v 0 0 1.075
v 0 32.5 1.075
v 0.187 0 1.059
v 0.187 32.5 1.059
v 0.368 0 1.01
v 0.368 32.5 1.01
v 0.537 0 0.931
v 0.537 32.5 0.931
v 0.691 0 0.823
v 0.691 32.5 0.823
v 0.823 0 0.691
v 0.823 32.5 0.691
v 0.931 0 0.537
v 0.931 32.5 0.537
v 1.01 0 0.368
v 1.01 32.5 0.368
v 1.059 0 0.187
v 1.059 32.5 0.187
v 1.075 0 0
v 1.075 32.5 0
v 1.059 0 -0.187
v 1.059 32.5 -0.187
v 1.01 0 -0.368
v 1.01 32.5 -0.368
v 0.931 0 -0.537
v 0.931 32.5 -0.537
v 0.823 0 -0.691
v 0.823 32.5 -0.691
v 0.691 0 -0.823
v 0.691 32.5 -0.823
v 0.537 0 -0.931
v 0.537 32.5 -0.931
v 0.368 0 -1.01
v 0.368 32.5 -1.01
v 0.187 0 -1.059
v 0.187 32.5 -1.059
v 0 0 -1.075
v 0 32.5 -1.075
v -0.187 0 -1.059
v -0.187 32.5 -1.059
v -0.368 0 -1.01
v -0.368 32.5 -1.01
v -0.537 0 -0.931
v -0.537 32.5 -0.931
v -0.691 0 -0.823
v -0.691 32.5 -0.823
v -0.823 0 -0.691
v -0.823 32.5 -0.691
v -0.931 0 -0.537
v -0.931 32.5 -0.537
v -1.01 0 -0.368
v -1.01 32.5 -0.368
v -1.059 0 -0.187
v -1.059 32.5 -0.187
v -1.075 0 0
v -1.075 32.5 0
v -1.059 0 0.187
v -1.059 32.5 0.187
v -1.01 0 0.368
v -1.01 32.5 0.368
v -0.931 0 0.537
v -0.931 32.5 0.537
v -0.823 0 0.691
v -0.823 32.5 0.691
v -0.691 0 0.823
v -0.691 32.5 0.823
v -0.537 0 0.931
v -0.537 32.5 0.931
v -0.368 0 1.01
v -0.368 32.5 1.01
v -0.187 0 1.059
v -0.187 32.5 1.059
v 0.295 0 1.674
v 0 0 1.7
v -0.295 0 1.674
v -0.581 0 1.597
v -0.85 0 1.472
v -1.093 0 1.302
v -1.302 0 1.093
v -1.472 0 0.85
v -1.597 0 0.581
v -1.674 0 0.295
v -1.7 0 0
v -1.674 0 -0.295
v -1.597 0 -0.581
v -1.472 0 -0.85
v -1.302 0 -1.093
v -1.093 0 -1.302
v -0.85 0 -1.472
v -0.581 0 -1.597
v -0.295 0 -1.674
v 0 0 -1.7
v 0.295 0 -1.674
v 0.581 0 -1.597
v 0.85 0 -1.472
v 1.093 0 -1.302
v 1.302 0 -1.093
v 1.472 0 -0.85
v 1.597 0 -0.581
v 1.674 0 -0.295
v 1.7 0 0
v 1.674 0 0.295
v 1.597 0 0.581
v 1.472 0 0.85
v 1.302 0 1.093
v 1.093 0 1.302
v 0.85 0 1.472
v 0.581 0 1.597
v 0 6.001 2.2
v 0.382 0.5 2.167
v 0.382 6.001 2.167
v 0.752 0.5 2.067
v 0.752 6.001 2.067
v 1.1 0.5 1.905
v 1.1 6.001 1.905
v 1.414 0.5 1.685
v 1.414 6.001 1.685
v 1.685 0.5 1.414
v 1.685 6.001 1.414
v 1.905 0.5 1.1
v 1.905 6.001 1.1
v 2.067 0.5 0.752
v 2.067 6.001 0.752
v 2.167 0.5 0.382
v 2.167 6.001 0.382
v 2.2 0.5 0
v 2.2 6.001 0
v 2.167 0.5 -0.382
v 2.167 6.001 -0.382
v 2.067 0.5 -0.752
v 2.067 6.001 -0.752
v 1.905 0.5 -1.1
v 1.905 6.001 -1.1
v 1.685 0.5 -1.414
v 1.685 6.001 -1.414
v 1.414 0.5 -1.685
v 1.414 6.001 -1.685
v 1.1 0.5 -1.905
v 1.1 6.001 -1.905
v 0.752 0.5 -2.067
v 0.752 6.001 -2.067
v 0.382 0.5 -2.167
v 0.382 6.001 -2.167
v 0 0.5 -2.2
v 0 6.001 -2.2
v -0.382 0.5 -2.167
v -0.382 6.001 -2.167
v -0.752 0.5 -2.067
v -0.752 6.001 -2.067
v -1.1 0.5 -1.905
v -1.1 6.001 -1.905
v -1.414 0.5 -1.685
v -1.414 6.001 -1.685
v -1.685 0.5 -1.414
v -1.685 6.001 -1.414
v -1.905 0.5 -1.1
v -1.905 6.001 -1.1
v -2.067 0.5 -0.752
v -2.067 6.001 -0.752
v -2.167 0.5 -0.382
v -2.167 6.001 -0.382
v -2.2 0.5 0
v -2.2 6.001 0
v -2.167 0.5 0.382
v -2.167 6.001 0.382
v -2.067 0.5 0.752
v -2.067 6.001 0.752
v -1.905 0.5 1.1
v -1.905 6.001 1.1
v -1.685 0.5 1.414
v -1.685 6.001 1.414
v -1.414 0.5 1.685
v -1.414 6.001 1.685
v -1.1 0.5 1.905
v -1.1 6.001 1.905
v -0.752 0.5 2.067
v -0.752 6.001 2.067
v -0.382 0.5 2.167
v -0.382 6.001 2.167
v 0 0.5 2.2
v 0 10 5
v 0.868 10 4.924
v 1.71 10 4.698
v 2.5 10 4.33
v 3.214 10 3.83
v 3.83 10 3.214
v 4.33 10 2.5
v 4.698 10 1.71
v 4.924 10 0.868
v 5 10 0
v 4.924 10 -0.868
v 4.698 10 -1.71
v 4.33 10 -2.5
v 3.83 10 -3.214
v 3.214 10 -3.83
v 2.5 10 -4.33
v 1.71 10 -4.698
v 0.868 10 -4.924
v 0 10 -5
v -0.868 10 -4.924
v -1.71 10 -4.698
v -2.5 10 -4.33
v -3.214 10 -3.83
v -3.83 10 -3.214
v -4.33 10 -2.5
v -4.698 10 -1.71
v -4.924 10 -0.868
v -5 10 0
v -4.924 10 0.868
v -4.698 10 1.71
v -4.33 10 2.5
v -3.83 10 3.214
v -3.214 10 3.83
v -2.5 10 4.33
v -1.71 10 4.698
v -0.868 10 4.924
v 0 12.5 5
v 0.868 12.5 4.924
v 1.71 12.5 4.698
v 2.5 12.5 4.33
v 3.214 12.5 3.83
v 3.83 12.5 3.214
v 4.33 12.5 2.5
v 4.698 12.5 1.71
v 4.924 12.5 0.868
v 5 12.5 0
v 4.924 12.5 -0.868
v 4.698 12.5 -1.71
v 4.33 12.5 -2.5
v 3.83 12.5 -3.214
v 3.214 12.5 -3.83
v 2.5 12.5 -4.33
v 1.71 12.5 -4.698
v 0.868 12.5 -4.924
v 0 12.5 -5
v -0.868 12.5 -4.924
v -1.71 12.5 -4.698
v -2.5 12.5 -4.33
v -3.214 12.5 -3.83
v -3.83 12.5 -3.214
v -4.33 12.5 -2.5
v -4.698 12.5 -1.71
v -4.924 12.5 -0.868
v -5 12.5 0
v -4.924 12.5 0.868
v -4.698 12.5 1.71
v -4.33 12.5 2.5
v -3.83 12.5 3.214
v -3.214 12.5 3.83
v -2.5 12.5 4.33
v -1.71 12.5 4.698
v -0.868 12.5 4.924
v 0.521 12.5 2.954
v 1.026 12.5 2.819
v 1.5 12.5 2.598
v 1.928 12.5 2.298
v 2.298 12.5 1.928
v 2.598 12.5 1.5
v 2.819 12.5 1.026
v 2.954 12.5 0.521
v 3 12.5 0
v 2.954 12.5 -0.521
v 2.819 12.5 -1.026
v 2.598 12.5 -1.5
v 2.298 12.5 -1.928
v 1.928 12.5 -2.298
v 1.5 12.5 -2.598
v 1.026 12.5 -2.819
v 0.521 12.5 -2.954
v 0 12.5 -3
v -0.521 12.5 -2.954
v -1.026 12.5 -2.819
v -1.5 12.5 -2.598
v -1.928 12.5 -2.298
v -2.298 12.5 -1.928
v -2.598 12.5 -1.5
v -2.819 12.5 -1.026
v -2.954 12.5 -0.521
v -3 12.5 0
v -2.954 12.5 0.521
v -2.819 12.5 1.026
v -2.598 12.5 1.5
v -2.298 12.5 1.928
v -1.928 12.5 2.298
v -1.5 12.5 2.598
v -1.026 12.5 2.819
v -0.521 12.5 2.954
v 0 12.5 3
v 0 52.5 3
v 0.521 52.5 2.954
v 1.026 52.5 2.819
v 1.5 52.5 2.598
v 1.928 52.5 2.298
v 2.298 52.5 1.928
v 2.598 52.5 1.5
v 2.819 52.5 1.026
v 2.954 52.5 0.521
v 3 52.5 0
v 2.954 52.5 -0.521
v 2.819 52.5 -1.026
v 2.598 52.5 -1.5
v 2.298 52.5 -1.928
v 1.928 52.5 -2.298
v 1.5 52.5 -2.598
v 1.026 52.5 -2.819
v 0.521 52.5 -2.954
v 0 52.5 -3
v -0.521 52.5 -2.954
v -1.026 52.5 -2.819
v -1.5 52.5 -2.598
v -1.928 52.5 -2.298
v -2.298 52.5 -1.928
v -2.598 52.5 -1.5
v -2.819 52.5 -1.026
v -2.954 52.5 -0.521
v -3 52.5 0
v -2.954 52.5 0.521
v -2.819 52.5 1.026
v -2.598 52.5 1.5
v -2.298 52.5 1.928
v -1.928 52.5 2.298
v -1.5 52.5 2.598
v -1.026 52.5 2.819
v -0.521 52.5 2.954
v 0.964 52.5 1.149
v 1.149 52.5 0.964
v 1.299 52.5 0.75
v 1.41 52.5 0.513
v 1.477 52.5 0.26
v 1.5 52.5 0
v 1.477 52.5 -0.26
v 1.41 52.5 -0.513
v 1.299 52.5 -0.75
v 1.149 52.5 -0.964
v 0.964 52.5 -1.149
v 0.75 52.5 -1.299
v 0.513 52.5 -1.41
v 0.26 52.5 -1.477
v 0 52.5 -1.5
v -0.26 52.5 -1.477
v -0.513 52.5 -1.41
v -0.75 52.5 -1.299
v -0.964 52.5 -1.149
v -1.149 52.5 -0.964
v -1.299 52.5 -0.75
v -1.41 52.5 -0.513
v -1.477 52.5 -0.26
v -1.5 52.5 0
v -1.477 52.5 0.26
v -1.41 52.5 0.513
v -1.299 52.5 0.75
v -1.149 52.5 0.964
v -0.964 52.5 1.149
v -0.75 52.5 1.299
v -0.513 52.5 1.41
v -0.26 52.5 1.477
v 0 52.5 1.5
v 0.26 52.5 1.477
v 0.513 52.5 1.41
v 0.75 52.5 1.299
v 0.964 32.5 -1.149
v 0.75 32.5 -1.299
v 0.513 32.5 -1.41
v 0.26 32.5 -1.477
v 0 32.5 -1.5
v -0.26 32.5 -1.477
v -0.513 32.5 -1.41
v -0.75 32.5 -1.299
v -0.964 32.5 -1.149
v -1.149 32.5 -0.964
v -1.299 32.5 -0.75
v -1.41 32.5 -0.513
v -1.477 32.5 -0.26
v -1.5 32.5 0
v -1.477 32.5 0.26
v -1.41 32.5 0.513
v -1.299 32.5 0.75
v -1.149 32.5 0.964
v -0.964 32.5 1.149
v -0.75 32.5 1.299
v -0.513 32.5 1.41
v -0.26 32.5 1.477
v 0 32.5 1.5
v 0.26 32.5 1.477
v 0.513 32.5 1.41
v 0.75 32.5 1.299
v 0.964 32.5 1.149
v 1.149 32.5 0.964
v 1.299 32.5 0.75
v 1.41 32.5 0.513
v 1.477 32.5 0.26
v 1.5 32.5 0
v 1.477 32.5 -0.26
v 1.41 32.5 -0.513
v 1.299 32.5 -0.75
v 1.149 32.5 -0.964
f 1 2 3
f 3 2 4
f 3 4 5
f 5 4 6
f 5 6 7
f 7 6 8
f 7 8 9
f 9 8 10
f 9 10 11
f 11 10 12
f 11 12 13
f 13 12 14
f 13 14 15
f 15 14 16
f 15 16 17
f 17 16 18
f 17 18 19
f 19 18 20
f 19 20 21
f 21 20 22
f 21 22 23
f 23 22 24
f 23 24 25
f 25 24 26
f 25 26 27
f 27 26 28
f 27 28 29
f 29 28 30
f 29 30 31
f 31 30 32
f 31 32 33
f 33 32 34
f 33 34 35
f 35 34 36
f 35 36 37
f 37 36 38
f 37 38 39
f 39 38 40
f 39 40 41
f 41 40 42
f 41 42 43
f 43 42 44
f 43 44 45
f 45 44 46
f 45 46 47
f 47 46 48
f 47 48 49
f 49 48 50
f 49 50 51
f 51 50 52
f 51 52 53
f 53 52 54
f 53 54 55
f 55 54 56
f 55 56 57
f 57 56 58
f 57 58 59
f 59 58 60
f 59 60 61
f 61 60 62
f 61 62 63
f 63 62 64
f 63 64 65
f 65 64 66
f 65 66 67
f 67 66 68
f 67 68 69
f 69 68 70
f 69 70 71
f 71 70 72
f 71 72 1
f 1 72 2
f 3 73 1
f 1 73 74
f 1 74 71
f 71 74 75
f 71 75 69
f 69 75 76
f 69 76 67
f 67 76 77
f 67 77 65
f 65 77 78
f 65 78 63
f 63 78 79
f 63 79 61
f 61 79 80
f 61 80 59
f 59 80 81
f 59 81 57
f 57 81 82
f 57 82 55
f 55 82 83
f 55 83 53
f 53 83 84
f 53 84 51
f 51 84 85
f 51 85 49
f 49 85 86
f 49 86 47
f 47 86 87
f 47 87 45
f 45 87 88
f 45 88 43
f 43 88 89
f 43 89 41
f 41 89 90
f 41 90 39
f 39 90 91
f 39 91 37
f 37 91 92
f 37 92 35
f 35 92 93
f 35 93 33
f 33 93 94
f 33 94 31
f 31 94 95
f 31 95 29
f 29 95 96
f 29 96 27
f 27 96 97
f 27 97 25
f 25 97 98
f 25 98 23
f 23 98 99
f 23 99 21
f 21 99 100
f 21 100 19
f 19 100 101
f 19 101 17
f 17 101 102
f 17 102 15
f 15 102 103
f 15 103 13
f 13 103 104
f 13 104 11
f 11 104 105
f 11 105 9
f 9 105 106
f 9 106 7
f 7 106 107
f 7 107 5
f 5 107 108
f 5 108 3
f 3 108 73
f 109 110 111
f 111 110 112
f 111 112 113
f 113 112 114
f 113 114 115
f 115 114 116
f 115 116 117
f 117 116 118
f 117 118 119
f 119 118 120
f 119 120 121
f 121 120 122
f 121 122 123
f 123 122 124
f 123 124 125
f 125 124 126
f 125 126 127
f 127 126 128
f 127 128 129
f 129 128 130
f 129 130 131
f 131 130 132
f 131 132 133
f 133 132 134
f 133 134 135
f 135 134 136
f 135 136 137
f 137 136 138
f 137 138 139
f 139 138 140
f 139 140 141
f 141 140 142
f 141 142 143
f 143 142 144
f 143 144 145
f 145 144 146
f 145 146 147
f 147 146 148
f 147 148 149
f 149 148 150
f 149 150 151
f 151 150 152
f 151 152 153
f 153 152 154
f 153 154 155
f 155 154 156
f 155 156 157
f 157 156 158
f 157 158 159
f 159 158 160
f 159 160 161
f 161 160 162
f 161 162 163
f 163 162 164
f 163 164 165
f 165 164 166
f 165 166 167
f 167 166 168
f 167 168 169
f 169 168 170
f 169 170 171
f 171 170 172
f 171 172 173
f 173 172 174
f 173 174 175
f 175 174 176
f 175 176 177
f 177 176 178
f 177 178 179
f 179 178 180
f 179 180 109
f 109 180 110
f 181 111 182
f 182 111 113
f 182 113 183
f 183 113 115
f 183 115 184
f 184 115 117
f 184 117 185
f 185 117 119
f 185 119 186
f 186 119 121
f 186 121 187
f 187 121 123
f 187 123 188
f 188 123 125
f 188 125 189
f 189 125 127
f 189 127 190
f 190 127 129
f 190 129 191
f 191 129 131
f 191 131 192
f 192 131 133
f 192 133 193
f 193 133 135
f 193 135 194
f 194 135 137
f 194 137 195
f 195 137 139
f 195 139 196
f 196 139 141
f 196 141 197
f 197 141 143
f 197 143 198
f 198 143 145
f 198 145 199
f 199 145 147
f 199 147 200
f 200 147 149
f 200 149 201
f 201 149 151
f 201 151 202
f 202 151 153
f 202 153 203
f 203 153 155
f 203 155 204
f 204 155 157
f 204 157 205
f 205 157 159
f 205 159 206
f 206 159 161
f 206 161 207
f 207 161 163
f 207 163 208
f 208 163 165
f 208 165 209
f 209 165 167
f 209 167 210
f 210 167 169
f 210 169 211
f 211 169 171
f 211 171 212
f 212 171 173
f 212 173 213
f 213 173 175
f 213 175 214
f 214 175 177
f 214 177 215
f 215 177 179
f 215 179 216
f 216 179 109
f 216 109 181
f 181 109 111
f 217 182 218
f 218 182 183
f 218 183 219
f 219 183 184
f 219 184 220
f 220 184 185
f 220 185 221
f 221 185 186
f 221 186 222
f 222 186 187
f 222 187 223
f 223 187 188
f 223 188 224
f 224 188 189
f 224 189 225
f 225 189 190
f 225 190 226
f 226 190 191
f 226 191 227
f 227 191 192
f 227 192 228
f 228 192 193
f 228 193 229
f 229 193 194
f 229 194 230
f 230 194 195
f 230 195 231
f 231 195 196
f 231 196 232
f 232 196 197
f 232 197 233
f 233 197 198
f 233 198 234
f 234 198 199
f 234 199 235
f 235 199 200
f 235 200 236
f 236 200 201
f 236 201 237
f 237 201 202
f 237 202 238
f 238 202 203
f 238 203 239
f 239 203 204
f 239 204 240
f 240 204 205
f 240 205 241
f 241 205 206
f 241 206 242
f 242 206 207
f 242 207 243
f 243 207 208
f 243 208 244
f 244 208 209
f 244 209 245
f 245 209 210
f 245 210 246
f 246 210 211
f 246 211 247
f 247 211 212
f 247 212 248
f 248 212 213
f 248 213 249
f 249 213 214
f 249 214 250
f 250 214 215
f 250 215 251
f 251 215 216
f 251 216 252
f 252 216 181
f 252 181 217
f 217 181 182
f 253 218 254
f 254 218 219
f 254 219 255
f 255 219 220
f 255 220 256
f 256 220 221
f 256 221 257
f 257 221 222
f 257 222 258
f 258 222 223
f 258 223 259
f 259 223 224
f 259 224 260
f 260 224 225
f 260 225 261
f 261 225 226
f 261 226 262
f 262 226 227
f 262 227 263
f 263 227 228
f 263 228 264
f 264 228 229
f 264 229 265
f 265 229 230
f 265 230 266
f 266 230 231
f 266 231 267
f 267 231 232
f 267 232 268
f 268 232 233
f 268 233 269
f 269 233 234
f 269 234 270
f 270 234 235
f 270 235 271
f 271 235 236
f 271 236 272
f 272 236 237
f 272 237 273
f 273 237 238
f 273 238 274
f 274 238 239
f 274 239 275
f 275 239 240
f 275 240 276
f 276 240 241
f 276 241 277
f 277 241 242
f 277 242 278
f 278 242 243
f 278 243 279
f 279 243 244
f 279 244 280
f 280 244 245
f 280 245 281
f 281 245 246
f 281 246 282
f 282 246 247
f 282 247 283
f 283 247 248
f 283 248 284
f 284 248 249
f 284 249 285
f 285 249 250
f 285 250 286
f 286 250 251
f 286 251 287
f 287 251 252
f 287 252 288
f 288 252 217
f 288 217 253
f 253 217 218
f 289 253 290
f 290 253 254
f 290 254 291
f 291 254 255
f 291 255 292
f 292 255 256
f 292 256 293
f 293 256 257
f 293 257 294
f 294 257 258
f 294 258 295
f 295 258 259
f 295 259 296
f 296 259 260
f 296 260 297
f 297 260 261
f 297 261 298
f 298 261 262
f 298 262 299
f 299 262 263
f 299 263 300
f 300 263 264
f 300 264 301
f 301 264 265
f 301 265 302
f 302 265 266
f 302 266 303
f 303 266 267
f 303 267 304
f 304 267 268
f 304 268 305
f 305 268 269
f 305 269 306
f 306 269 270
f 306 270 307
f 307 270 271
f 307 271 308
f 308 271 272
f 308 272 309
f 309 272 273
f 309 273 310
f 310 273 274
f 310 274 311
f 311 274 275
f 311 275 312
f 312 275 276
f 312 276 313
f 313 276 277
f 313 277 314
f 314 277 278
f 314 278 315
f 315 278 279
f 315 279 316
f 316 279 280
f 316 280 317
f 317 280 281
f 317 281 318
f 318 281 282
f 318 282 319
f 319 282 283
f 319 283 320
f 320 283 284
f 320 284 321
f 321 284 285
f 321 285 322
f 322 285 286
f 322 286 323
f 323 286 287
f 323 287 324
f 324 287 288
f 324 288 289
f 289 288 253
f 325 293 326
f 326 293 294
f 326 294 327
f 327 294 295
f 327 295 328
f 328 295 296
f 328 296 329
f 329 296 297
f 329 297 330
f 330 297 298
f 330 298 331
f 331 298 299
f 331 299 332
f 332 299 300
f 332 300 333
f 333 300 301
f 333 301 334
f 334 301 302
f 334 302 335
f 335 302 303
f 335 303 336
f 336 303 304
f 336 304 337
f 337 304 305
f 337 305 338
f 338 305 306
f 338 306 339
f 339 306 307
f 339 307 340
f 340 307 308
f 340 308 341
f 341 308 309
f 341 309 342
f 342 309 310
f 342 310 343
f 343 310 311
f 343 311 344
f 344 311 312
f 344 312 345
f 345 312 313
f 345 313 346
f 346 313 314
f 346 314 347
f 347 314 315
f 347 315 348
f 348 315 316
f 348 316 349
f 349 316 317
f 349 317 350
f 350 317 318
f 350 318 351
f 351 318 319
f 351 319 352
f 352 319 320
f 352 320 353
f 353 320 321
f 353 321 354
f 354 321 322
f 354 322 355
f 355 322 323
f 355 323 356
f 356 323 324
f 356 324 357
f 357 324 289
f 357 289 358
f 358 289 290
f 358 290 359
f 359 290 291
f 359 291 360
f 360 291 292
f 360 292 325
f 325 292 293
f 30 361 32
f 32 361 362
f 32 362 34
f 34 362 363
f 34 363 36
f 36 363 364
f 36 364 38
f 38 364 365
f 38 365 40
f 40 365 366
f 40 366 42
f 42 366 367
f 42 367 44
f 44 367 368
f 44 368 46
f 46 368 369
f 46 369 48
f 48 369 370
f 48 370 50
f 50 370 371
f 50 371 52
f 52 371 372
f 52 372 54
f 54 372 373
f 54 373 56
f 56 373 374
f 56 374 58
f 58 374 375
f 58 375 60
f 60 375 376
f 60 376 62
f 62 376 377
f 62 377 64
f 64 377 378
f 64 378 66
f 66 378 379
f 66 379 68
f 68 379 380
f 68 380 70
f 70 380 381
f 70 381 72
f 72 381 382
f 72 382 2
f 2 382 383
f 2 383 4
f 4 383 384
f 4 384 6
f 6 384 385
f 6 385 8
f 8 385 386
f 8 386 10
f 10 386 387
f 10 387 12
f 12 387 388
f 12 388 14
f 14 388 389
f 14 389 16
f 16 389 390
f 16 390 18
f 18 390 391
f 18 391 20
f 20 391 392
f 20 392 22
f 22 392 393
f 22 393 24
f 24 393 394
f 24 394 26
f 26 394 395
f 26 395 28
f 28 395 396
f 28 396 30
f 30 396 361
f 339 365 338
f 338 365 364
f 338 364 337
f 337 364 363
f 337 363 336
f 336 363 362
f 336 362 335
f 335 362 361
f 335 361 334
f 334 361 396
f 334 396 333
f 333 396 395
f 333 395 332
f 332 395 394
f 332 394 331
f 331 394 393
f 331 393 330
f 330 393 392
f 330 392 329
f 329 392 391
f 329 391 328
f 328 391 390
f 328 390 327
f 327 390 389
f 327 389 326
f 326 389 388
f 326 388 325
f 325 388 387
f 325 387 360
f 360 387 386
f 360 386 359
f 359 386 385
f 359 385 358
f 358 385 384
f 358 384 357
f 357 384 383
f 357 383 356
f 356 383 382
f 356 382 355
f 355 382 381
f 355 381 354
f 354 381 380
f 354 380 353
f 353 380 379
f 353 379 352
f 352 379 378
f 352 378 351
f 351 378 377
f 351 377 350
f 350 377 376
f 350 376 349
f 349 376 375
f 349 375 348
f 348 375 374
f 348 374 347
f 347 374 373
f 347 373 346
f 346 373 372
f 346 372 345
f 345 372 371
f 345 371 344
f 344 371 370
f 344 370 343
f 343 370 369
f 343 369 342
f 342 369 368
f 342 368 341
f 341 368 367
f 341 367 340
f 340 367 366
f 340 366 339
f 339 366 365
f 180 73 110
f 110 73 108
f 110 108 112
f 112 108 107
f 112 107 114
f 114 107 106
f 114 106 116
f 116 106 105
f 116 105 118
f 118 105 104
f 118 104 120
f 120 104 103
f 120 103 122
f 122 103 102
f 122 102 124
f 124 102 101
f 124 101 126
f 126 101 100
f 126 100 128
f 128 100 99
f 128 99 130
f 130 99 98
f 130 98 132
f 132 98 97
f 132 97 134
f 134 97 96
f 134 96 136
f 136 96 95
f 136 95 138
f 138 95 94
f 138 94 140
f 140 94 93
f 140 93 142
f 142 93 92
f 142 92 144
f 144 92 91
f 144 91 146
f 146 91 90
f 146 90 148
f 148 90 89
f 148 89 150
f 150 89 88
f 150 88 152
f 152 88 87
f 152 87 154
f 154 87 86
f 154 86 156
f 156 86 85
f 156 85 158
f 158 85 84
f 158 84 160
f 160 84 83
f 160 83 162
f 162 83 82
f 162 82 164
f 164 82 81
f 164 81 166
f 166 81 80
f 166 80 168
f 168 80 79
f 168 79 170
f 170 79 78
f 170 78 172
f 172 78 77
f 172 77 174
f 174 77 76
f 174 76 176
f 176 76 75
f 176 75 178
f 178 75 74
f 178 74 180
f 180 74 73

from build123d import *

# Parameters (mm, degrees)
CUT_EXTRUDE1_DEPTH      = 53.974050251
CUT_EXTRUDE1_DEPTH_BACK = 53.974050251
SKETCH2_R               = 1.075
CUT_EXTRUDE2_DEPTH      = 53.974050251
CUT_EXTRUDE2_DEPTH_BACK = 20
SKETCH3_R               = 1.5
CHAMFER1_SIZE           = 0.5


with BuildPart() as part:
    # Sketch1 → Revolve1 (revolve)
    with BuildSketch(Plane(origin=(0, 0, 0), x_dir=(0, 0, -1), z_dir=(1, 0, 0))):
        Polygon((0, 0), (-2.2, 0), (-2.2, 6.001185581), (-5, 10), (-5, 12.5), (-3, 12.5), (-3, 52.5), (0, 52.5), align=None)
    revolve(axis=Axis((0, 52.5, 0), (0, -1, 0)))

    # Sketch2 → Cut-Extrude1 (cut, two sides: drawn at the far end of the back side and taken through both)
    with BuildSketch(Plane(origin=(0, 52.5, 0), x_dir=(1, 0, 0), z_dir=(0, 1, 0)).offset(-CUT_EXTRUDE1_DEPTH_BACK)):
        with Locations(Location((0, 0, 0), (0, 0, 270))):
            Circle(SKETCH2_R)
    extrude(amount=CUT_EXTRUDE1_DEPTH + CUT_EXTRUDE1_DEPTH_BACK, mode=Mode.SUBTRACT)

    # Sketch3 → Cut-Extrude2 (cut, two sides: drawn at the far end of the back side and taken through both)
    with BuildSketch(Plane(origin=(0, 52.5, 0), x_dir=(1, 0, 0), z_dir=(0, 1, 0)).offset(-CUT_EXTRUDE2_DEPTH_BACK)):
        with Locations(Location((0, 0, 0), (0, 0, 270))):
            Circle(SKETCH3_R)
    extrude(amount=CUT_EXTRUDE2_DEPTH + CUT_EXTRUDE2_DEPTH_BACK, mode=Mode.SUBTRACT)

    # Chamfer1
    chamfer1_edges = [part.edges().sort_by_distance(p)[0] for p in [
        (0, 0, -2.2),
    ]]
    chamfer(chamfer1_edges, length=CHAMFER1_SIZE)


solid = part.part
